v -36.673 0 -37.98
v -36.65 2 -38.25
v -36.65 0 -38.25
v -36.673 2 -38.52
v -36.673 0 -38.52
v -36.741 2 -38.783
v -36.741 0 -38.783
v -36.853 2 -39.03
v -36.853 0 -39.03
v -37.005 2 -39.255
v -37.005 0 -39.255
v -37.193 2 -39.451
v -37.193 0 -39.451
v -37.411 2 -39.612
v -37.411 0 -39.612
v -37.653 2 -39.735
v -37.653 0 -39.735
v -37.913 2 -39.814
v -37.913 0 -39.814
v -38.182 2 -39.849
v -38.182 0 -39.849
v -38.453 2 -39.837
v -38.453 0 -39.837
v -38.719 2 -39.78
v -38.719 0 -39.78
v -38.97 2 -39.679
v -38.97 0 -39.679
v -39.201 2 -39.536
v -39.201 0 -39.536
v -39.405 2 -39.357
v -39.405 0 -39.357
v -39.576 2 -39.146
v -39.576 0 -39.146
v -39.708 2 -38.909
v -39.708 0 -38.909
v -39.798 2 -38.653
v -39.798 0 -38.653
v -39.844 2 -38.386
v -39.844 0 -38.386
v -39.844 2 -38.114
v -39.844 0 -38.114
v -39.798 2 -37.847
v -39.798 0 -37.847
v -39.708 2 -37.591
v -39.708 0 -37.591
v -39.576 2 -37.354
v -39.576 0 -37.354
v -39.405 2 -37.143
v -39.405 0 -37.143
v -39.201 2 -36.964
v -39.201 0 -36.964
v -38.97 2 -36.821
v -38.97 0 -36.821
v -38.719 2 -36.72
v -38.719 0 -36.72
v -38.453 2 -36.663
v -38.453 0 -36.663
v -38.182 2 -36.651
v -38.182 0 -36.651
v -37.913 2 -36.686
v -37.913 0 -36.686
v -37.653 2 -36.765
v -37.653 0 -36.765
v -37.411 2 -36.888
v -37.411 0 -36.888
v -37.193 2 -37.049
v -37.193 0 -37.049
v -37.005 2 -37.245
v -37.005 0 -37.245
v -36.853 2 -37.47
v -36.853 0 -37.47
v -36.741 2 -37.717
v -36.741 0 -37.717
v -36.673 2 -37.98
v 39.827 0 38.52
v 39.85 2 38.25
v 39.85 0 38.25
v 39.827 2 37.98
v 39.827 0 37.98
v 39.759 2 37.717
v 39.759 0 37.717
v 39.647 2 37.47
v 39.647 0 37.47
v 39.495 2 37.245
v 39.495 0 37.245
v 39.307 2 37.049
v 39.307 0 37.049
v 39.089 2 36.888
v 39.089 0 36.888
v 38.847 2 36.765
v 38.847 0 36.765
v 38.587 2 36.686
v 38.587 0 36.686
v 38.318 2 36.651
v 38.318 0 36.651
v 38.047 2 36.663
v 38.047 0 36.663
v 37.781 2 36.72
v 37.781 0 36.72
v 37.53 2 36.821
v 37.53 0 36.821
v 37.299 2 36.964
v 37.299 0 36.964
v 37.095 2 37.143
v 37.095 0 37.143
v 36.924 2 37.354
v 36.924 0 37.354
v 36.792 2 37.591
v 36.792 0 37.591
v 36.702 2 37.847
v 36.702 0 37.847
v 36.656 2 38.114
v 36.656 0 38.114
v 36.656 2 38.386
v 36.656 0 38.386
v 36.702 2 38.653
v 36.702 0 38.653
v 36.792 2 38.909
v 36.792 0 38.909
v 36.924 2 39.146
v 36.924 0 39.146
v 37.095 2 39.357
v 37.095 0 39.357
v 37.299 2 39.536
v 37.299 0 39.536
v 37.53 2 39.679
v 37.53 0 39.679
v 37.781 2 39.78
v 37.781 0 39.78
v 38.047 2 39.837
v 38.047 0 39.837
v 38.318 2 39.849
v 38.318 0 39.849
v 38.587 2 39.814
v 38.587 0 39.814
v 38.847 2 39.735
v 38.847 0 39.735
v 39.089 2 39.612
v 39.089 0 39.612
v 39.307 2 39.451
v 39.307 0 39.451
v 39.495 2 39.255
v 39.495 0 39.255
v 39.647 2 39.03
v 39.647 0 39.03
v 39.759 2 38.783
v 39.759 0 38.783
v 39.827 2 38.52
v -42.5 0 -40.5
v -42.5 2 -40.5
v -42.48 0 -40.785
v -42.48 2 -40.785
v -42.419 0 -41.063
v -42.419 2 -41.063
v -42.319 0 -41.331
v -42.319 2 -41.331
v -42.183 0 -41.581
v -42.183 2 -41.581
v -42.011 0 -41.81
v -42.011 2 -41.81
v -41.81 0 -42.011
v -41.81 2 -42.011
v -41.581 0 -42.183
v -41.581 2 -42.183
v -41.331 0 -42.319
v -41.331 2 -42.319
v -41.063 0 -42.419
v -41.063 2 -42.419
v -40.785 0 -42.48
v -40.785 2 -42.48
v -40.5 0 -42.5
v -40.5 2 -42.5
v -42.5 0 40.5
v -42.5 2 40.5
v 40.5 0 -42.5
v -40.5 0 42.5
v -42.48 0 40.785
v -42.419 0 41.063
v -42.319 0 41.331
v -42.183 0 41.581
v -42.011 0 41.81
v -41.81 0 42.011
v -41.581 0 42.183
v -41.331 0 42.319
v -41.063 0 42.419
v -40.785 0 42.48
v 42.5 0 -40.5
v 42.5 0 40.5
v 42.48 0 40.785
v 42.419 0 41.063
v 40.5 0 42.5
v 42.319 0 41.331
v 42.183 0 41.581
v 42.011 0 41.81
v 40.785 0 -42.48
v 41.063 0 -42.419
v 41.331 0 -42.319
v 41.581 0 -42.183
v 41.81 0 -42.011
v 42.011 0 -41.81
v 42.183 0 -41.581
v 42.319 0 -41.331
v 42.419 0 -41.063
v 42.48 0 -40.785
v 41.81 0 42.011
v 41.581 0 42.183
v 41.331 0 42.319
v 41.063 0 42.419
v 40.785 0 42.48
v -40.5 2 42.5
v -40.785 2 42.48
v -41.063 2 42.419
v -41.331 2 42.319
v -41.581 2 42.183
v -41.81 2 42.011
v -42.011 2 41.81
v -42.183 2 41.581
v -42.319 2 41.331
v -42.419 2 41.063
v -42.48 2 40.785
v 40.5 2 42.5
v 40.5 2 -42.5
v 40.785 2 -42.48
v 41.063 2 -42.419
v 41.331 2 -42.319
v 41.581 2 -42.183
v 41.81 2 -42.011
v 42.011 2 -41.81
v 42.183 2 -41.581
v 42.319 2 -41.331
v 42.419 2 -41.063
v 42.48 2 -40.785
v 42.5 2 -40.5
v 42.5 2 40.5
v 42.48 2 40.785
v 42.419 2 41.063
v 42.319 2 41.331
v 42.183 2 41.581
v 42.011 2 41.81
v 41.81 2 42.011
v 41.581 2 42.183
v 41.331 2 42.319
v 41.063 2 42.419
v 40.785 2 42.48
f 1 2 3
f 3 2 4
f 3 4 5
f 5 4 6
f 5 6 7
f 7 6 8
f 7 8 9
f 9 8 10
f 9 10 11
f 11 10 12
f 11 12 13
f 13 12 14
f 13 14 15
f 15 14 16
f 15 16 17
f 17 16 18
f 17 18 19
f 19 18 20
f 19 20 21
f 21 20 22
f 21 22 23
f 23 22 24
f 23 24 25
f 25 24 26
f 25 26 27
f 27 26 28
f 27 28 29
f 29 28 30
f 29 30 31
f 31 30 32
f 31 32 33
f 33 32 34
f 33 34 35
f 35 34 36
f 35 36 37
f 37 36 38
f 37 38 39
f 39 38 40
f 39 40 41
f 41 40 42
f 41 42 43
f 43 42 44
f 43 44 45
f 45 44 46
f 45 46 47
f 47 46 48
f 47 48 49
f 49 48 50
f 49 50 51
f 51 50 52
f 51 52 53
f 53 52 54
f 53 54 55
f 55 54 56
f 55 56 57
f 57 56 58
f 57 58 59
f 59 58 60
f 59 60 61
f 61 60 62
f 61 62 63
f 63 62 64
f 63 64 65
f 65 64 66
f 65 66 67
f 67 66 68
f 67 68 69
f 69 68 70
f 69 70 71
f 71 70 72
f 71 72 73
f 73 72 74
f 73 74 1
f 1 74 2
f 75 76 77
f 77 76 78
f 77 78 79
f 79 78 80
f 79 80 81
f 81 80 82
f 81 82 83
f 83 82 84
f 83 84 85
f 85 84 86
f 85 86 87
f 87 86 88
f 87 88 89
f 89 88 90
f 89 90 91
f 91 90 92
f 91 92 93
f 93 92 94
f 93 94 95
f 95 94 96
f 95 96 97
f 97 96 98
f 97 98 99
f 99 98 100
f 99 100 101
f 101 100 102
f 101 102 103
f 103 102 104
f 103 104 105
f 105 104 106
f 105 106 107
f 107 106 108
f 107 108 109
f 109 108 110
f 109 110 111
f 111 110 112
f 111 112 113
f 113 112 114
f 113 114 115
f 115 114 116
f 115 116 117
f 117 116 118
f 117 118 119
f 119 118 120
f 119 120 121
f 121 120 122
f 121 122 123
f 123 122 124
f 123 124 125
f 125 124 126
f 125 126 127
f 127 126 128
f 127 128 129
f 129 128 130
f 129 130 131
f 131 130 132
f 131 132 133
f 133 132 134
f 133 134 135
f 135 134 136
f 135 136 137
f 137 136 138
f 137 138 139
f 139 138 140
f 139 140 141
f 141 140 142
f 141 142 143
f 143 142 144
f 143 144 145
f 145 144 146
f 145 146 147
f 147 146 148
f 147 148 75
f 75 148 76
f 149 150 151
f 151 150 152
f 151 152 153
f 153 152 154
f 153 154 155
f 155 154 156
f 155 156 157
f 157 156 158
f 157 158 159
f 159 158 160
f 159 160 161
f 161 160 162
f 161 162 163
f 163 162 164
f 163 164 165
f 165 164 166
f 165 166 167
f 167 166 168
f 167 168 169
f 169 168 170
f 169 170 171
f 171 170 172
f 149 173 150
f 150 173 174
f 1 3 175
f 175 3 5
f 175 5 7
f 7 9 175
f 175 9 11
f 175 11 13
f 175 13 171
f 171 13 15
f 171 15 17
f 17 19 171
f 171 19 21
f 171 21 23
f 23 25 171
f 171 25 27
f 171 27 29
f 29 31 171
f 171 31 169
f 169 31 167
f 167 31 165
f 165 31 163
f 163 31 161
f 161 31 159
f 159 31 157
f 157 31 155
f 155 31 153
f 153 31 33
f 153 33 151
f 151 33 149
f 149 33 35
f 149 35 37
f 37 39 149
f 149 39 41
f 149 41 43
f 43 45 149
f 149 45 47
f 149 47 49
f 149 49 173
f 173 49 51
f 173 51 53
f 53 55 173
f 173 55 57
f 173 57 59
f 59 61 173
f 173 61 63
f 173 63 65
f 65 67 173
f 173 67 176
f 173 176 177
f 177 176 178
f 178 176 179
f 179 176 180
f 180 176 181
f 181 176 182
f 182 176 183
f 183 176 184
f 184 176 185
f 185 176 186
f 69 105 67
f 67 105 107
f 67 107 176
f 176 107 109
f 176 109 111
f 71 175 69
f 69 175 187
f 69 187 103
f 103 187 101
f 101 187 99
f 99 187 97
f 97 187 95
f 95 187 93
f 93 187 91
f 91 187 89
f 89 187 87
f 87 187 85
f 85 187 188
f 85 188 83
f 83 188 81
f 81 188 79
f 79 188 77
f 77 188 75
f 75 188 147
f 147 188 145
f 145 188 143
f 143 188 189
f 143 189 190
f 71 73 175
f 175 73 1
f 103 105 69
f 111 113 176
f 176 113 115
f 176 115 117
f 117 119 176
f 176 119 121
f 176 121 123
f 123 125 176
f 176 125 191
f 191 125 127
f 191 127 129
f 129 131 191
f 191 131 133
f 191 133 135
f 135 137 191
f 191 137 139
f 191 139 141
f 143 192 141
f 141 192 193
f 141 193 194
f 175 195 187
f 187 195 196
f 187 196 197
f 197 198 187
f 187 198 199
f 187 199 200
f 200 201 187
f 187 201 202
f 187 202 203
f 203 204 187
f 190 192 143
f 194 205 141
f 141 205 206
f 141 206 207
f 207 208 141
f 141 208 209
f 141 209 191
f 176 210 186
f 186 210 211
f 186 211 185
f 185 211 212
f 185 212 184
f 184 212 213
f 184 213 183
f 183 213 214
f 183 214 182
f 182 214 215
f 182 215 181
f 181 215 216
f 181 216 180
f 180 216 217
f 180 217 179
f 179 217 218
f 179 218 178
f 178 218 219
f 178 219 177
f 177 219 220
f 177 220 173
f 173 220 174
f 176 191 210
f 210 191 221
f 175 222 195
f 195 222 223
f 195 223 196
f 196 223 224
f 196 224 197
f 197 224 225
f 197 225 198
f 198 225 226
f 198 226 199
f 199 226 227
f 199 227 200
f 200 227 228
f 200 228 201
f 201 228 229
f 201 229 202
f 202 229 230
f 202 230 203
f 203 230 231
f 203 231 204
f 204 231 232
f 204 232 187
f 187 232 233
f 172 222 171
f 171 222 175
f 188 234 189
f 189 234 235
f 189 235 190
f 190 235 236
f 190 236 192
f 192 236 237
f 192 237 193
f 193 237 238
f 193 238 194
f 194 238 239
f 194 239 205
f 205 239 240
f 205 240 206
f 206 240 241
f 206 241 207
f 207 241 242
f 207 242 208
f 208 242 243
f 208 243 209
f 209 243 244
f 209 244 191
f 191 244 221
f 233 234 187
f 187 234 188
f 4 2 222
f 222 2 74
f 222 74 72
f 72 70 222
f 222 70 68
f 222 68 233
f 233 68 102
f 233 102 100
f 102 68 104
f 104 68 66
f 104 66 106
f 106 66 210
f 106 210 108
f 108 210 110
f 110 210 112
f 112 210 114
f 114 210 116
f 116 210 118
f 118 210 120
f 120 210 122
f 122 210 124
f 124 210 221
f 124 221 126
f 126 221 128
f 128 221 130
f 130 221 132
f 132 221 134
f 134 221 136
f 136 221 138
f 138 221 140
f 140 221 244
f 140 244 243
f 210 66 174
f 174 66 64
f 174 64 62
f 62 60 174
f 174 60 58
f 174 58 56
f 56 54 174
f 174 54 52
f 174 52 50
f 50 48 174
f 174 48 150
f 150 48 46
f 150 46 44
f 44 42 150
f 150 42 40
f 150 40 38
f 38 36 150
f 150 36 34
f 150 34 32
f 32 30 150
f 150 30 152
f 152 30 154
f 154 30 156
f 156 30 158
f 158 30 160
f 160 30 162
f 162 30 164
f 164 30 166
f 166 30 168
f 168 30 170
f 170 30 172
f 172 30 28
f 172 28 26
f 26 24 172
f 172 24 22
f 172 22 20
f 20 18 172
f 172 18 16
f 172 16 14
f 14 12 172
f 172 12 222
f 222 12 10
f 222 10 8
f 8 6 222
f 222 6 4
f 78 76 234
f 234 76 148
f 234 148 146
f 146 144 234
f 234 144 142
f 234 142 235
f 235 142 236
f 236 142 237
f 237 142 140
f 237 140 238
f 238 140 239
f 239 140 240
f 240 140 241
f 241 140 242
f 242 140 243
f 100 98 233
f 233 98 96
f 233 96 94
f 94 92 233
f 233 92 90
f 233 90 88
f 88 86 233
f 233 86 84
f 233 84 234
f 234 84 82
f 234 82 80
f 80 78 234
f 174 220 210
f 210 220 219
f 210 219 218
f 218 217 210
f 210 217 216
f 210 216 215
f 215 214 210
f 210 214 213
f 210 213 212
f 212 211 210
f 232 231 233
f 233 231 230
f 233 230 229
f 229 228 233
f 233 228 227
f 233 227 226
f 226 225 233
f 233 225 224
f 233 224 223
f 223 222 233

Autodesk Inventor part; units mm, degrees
ref_plane "YZ Plane" through (0, 0, 0) normal (1, 0, 0) x (0, 1, 0)
ref_plane "XZ Plane" through (0, 0, 0) normal (0, 1, 0) x (-1, 0, 0)
ref_plane "XY Plane" through (0, 0, 0) normal (0, 0, 1) x (1, 0, 0)
sketch "Esboço1" plane through (0, 0, 0) normal (0, 1, 0) x (-1, 0, 0)
  line L0 (-42.5, 42.5) -> (42.5, 42.5)
  line L1 (42.5, 42.5) -> (42.5, -42.5)
  line L2 (42.5, -42.5) -> (-42.5, -42.5)
  line L3 (-42.5, -42.5) -> (-42.5, 42.5)
  line L4 (-42.5, 42.5) -> (42.5, -42.5) construction
  line L5 (42.5, 42.5) -> (-42.5, -42.5) construction
  point P0 (0, 0)
  dimension "d0" = 85
  dimension "d1" = 85
extrude "Extrusão1" add sketch "Esboço1" along normal blind 2
fillet "Arredondamento1" radius 2 4 edges at (42.5, 1, 42.5) (42.5, 1, -42.5) (-42.5, 1, 42.5) (-42.5, 1, -42.5)
sketch "Esboço2" plane through (0, 2, 0) normal (0, 1, 0) x (1, 0, 0)
  circle A0 centre (38.25, -38.25) radius 1.6
  line L0 (-40.5, -42.5) -> (40.5, -42.5) projected
  line L1 (42.5, -40.5) -> (42.5, 40.5) projected
  circle A1 centre (-38.25, 38.25) radius 1.6
  line L2 (-42.5, 40.5) -> (-42.5, -40.5) projected
  line L3 (40.5, 42.5) -> (-40.5, 42.5) projected
  point P0 (0, 0)
  dimension "d5" = 3.2
  dimension "d6" = 4.25
  dimension "d7" = 4.25
  dimension "d8" = 3.2
  dimension "d9" = 4.25
  dimension "d10" = 4.25
extrude "Extrusão2" cut sketch "Esboço2" against normal blind 2
properties part number "tampa caixa box"
